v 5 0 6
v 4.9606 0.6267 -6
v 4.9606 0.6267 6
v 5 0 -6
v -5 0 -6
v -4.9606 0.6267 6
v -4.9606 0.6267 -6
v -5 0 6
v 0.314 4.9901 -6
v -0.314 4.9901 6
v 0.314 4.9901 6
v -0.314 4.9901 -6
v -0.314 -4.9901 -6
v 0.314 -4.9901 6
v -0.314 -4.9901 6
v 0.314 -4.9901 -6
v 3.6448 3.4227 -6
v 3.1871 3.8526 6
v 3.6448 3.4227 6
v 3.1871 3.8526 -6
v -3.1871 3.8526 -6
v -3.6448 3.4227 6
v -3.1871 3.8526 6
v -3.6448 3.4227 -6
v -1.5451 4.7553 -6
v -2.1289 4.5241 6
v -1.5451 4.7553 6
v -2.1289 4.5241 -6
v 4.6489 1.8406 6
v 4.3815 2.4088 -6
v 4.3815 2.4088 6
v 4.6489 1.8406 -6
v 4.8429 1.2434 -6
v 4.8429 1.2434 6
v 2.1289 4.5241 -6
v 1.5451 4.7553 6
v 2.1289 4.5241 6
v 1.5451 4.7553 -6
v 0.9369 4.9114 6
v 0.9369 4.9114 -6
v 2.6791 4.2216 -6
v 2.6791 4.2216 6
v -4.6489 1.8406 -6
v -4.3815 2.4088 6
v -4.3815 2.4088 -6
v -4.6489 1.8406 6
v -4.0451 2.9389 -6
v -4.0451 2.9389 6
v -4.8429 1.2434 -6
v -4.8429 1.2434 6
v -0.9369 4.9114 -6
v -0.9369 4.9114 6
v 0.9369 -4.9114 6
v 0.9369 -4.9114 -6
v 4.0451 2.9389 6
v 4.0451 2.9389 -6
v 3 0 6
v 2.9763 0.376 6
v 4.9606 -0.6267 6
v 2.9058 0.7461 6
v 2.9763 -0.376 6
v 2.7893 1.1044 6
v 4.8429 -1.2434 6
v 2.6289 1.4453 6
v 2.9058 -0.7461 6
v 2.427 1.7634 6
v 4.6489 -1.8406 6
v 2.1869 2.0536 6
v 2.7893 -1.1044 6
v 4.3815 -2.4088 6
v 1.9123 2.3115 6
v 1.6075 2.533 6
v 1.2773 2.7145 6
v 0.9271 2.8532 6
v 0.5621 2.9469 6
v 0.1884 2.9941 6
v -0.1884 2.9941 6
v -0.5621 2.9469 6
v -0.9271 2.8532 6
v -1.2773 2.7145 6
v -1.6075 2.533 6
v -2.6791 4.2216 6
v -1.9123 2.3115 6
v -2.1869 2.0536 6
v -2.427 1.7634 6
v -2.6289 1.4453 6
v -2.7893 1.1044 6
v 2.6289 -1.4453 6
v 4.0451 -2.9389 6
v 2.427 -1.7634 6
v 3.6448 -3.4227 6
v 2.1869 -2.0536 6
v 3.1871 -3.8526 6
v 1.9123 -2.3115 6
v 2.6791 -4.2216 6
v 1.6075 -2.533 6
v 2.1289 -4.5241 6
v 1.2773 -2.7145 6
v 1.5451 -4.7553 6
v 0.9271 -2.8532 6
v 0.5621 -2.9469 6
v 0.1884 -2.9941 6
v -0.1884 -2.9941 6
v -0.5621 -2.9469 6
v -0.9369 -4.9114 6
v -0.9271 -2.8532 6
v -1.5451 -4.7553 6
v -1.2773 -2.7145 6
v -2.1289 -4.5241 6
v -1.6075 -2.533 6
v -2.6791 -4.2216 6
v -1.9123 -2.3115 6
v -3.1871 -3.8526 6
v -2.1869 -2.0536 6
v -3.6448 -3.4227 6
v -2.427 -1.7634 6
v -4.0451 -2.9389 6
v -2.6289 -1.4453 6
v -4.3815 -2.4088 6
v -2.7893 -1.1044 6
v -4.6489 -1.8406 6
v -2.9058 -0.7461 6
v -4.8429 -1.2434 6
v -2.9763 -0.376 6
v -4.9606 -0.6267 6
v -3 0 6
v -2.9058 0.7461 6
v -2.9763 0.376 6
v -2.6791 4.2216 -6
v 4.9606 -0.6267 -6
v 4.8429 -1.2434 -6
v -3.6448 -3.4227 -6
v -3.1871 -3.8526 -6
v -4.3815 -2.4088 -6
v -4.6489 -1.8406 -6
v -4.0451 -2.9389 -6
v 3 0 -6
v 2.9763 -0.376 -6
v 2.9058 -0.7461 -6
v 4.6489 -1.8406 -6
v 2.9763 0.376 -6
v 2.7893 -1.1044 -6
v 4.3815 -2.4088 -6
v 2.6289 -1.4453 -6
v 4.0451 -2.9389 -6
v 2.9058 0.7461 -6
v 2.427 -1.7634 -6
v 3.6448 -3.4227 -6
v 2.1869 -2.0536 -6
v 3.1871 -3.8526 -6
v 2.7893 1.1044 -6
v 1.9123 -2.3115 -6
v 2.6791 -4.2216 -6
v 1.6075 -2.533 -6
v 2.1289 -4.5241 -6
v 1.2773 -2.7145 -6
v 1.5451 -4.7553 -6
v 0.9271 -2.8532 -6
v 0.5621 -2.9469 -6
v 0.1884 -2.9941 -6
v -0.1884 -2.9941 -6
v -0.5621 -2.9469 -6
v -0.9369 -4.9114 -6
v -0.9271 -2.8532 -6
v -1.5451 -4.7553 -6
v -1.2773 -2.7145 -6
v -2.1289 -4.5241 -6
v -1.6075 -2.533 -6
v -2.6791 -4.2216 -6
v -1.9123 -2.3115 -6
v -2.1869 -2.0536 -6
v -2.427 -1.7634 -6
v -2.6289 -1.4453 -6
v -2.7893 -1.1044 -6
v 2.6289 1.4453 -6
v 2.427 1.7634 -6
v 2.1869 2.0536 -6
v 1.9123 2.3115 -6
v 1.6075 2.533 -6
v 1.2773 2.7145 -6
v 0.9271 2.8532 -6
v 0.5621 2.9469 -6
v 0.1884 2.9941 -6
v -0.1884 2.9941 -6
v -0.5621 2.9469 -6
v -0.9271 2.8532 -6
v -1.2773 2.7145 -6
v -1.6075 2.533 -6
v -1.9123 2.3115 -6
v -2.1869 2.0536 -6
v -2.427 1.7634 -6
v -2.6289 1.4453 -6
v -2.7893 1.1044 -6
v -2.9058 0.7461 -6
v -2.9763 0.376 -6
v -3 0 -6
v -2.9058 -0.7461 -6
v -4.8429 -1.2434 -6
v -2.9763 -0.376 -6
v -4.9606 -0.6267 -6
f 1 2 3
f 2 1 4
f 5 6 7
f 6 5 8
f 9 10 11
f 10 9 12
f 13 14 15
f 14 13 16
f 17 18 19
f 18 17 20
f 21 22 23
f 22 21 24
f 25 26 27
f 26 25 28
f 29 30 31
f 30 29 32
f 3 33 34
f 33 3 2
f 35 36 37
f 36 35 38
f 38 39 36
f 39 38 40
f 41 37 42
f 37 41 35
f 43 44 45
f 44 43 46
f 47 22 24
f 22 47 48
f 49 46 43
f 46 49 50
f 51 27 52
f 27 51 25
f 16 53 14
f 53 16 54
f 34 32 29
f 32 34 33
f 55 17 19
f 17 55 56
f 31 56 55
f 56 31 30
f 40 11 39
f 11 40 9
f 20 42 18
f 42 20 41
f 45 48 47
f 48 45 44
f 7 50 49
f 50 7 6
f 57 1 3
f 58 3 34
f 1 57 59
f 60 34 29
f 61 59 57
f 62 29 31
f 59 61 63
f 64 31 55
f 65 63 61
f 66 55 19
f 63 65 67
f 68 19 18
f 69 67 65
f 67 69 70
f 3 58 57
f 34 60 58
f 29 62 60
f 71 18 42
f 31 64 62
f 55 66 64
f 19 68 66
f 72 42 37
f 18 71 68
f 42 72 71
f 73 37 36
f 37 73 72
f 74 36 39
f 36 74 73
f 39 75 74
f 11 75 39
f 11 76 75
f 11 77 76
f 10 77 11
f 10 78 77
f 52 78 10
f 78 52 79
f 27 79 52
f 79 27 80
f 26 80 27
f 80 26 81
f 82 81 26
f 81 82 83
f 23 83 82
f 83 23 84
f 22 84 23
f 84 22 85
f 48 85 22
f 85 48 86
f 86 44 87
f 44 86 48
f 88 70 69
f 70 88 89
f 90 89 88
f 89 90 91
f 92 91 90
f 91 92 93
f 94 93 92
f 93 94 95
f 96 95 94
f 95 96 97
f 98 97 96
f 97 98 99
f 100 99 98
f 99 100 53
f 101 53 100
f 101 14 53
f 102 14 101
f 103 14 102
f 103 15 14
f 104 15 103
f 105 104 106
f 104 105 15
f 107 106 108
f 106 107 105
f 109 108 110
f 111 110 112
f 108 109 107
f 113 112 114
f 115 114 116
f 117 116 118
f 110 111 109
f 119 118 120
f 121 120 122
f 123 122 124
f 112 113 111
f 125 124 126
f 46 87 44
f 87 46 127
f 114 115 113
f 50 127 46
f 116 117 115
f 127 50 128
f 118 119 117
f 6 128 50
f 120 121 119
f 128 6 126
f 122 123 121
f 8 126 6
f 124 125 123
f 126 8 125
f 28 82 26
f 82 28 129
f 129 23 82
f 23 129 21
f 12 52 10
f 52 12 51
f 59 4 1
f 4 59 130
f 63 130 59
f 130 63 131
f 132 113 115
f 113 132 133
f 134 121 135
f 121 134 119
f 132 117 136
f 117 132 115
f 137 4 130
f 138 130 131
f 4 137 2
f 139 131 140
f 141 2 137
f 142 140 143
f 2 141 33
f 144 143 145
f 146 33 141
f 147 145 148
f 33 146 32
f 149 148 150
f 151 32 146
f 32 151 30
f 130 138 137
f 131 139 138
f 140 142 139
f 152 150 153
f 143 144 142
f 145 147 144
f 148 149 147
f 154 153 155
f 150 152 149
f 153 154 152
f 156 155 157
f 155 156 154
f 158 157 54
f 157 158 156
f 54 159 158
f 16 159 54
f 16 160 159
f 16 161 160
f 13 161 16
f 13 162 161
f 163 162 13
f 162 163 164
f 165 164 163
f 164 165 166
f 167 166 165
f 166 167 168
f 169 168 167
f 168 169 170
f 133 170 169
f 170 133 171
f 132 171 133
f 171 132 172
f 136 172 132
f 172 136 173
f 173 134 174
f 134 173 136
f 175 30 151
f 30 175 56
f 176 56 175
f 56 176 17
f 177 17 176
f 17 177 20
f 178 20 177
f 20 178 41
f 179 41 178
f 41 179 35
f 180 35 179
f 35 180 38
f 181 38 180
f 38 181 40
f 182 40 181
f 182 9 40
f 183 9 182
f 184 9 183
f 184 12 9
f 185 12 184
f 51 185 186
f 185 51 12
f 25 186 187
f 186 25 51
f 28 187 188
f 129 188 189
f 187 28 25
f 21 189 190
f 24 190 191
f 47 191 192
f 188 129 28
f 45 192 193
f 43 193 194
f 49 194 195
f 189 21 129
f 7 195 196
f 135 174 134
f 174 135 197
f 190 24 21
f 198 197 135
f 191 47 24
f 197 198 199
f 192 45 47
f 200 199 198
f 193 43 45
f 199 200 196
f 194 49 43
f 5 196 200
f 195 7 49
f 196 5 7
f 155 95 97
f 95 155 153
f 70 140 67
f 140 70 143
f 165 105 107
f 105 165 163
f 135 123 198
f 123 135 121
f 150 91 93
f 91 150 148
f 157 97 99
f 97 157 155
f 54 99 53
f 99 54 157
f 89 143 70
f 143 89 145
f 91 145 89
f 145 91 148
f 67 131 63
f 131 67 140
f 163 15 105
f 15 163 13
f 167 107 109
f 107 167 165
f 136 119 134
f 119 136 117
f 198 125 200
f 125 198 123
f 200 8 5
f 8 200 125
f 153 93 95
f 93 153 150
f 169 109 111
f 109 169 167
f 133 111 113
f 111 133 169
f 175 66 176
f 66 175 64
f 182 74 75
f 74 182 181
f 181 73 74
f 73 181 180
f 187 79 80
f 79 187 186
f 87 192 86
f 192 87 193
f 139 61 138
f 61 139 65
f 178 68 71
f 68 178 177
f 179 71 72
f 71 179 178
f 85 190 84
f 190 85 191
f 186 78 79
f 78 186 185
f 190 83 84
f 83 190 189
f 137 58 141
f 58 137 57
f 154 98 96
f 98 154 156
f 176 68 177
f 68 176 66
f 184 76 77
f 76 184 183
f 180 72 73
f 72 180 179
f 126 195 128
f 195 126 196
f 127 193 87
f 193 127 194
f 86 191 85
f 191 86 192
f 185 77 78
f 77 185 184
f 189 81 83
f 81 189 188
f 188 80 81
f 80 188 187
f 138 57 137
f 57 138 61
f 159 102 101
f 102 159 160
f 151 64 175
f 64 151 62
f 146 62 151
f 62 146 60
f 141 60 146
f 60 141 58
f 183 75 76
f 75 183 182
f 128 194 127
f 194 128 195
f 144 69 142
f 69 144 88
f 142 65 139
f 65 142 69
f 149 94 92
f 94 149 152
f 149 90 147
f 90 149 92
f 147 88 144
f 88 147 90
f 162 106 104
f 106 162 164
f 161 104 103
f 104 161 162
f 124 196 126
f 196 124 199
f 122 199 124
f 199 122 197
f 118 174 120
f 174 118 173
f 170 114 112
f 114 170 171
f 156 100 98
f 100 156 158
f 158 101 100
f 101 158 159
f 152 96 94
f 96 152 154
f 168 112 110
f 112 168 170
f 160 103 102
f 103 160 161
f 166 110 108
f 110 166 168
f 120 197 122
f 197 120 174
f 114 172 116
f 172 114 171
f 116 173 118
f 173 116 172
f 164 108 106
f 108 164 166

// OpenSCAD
$fn = 50;


difference() {
	union() {
		translate(v = [0, 0, -6.0000000000]) {
			cylinder(h = 12, r = 5.0000000000);
		}
	}
	union() {
		translate(v = [0, 0, -100.0000000000]) {
			cylinder(h = 200, r = 3);
		}
	}
}
